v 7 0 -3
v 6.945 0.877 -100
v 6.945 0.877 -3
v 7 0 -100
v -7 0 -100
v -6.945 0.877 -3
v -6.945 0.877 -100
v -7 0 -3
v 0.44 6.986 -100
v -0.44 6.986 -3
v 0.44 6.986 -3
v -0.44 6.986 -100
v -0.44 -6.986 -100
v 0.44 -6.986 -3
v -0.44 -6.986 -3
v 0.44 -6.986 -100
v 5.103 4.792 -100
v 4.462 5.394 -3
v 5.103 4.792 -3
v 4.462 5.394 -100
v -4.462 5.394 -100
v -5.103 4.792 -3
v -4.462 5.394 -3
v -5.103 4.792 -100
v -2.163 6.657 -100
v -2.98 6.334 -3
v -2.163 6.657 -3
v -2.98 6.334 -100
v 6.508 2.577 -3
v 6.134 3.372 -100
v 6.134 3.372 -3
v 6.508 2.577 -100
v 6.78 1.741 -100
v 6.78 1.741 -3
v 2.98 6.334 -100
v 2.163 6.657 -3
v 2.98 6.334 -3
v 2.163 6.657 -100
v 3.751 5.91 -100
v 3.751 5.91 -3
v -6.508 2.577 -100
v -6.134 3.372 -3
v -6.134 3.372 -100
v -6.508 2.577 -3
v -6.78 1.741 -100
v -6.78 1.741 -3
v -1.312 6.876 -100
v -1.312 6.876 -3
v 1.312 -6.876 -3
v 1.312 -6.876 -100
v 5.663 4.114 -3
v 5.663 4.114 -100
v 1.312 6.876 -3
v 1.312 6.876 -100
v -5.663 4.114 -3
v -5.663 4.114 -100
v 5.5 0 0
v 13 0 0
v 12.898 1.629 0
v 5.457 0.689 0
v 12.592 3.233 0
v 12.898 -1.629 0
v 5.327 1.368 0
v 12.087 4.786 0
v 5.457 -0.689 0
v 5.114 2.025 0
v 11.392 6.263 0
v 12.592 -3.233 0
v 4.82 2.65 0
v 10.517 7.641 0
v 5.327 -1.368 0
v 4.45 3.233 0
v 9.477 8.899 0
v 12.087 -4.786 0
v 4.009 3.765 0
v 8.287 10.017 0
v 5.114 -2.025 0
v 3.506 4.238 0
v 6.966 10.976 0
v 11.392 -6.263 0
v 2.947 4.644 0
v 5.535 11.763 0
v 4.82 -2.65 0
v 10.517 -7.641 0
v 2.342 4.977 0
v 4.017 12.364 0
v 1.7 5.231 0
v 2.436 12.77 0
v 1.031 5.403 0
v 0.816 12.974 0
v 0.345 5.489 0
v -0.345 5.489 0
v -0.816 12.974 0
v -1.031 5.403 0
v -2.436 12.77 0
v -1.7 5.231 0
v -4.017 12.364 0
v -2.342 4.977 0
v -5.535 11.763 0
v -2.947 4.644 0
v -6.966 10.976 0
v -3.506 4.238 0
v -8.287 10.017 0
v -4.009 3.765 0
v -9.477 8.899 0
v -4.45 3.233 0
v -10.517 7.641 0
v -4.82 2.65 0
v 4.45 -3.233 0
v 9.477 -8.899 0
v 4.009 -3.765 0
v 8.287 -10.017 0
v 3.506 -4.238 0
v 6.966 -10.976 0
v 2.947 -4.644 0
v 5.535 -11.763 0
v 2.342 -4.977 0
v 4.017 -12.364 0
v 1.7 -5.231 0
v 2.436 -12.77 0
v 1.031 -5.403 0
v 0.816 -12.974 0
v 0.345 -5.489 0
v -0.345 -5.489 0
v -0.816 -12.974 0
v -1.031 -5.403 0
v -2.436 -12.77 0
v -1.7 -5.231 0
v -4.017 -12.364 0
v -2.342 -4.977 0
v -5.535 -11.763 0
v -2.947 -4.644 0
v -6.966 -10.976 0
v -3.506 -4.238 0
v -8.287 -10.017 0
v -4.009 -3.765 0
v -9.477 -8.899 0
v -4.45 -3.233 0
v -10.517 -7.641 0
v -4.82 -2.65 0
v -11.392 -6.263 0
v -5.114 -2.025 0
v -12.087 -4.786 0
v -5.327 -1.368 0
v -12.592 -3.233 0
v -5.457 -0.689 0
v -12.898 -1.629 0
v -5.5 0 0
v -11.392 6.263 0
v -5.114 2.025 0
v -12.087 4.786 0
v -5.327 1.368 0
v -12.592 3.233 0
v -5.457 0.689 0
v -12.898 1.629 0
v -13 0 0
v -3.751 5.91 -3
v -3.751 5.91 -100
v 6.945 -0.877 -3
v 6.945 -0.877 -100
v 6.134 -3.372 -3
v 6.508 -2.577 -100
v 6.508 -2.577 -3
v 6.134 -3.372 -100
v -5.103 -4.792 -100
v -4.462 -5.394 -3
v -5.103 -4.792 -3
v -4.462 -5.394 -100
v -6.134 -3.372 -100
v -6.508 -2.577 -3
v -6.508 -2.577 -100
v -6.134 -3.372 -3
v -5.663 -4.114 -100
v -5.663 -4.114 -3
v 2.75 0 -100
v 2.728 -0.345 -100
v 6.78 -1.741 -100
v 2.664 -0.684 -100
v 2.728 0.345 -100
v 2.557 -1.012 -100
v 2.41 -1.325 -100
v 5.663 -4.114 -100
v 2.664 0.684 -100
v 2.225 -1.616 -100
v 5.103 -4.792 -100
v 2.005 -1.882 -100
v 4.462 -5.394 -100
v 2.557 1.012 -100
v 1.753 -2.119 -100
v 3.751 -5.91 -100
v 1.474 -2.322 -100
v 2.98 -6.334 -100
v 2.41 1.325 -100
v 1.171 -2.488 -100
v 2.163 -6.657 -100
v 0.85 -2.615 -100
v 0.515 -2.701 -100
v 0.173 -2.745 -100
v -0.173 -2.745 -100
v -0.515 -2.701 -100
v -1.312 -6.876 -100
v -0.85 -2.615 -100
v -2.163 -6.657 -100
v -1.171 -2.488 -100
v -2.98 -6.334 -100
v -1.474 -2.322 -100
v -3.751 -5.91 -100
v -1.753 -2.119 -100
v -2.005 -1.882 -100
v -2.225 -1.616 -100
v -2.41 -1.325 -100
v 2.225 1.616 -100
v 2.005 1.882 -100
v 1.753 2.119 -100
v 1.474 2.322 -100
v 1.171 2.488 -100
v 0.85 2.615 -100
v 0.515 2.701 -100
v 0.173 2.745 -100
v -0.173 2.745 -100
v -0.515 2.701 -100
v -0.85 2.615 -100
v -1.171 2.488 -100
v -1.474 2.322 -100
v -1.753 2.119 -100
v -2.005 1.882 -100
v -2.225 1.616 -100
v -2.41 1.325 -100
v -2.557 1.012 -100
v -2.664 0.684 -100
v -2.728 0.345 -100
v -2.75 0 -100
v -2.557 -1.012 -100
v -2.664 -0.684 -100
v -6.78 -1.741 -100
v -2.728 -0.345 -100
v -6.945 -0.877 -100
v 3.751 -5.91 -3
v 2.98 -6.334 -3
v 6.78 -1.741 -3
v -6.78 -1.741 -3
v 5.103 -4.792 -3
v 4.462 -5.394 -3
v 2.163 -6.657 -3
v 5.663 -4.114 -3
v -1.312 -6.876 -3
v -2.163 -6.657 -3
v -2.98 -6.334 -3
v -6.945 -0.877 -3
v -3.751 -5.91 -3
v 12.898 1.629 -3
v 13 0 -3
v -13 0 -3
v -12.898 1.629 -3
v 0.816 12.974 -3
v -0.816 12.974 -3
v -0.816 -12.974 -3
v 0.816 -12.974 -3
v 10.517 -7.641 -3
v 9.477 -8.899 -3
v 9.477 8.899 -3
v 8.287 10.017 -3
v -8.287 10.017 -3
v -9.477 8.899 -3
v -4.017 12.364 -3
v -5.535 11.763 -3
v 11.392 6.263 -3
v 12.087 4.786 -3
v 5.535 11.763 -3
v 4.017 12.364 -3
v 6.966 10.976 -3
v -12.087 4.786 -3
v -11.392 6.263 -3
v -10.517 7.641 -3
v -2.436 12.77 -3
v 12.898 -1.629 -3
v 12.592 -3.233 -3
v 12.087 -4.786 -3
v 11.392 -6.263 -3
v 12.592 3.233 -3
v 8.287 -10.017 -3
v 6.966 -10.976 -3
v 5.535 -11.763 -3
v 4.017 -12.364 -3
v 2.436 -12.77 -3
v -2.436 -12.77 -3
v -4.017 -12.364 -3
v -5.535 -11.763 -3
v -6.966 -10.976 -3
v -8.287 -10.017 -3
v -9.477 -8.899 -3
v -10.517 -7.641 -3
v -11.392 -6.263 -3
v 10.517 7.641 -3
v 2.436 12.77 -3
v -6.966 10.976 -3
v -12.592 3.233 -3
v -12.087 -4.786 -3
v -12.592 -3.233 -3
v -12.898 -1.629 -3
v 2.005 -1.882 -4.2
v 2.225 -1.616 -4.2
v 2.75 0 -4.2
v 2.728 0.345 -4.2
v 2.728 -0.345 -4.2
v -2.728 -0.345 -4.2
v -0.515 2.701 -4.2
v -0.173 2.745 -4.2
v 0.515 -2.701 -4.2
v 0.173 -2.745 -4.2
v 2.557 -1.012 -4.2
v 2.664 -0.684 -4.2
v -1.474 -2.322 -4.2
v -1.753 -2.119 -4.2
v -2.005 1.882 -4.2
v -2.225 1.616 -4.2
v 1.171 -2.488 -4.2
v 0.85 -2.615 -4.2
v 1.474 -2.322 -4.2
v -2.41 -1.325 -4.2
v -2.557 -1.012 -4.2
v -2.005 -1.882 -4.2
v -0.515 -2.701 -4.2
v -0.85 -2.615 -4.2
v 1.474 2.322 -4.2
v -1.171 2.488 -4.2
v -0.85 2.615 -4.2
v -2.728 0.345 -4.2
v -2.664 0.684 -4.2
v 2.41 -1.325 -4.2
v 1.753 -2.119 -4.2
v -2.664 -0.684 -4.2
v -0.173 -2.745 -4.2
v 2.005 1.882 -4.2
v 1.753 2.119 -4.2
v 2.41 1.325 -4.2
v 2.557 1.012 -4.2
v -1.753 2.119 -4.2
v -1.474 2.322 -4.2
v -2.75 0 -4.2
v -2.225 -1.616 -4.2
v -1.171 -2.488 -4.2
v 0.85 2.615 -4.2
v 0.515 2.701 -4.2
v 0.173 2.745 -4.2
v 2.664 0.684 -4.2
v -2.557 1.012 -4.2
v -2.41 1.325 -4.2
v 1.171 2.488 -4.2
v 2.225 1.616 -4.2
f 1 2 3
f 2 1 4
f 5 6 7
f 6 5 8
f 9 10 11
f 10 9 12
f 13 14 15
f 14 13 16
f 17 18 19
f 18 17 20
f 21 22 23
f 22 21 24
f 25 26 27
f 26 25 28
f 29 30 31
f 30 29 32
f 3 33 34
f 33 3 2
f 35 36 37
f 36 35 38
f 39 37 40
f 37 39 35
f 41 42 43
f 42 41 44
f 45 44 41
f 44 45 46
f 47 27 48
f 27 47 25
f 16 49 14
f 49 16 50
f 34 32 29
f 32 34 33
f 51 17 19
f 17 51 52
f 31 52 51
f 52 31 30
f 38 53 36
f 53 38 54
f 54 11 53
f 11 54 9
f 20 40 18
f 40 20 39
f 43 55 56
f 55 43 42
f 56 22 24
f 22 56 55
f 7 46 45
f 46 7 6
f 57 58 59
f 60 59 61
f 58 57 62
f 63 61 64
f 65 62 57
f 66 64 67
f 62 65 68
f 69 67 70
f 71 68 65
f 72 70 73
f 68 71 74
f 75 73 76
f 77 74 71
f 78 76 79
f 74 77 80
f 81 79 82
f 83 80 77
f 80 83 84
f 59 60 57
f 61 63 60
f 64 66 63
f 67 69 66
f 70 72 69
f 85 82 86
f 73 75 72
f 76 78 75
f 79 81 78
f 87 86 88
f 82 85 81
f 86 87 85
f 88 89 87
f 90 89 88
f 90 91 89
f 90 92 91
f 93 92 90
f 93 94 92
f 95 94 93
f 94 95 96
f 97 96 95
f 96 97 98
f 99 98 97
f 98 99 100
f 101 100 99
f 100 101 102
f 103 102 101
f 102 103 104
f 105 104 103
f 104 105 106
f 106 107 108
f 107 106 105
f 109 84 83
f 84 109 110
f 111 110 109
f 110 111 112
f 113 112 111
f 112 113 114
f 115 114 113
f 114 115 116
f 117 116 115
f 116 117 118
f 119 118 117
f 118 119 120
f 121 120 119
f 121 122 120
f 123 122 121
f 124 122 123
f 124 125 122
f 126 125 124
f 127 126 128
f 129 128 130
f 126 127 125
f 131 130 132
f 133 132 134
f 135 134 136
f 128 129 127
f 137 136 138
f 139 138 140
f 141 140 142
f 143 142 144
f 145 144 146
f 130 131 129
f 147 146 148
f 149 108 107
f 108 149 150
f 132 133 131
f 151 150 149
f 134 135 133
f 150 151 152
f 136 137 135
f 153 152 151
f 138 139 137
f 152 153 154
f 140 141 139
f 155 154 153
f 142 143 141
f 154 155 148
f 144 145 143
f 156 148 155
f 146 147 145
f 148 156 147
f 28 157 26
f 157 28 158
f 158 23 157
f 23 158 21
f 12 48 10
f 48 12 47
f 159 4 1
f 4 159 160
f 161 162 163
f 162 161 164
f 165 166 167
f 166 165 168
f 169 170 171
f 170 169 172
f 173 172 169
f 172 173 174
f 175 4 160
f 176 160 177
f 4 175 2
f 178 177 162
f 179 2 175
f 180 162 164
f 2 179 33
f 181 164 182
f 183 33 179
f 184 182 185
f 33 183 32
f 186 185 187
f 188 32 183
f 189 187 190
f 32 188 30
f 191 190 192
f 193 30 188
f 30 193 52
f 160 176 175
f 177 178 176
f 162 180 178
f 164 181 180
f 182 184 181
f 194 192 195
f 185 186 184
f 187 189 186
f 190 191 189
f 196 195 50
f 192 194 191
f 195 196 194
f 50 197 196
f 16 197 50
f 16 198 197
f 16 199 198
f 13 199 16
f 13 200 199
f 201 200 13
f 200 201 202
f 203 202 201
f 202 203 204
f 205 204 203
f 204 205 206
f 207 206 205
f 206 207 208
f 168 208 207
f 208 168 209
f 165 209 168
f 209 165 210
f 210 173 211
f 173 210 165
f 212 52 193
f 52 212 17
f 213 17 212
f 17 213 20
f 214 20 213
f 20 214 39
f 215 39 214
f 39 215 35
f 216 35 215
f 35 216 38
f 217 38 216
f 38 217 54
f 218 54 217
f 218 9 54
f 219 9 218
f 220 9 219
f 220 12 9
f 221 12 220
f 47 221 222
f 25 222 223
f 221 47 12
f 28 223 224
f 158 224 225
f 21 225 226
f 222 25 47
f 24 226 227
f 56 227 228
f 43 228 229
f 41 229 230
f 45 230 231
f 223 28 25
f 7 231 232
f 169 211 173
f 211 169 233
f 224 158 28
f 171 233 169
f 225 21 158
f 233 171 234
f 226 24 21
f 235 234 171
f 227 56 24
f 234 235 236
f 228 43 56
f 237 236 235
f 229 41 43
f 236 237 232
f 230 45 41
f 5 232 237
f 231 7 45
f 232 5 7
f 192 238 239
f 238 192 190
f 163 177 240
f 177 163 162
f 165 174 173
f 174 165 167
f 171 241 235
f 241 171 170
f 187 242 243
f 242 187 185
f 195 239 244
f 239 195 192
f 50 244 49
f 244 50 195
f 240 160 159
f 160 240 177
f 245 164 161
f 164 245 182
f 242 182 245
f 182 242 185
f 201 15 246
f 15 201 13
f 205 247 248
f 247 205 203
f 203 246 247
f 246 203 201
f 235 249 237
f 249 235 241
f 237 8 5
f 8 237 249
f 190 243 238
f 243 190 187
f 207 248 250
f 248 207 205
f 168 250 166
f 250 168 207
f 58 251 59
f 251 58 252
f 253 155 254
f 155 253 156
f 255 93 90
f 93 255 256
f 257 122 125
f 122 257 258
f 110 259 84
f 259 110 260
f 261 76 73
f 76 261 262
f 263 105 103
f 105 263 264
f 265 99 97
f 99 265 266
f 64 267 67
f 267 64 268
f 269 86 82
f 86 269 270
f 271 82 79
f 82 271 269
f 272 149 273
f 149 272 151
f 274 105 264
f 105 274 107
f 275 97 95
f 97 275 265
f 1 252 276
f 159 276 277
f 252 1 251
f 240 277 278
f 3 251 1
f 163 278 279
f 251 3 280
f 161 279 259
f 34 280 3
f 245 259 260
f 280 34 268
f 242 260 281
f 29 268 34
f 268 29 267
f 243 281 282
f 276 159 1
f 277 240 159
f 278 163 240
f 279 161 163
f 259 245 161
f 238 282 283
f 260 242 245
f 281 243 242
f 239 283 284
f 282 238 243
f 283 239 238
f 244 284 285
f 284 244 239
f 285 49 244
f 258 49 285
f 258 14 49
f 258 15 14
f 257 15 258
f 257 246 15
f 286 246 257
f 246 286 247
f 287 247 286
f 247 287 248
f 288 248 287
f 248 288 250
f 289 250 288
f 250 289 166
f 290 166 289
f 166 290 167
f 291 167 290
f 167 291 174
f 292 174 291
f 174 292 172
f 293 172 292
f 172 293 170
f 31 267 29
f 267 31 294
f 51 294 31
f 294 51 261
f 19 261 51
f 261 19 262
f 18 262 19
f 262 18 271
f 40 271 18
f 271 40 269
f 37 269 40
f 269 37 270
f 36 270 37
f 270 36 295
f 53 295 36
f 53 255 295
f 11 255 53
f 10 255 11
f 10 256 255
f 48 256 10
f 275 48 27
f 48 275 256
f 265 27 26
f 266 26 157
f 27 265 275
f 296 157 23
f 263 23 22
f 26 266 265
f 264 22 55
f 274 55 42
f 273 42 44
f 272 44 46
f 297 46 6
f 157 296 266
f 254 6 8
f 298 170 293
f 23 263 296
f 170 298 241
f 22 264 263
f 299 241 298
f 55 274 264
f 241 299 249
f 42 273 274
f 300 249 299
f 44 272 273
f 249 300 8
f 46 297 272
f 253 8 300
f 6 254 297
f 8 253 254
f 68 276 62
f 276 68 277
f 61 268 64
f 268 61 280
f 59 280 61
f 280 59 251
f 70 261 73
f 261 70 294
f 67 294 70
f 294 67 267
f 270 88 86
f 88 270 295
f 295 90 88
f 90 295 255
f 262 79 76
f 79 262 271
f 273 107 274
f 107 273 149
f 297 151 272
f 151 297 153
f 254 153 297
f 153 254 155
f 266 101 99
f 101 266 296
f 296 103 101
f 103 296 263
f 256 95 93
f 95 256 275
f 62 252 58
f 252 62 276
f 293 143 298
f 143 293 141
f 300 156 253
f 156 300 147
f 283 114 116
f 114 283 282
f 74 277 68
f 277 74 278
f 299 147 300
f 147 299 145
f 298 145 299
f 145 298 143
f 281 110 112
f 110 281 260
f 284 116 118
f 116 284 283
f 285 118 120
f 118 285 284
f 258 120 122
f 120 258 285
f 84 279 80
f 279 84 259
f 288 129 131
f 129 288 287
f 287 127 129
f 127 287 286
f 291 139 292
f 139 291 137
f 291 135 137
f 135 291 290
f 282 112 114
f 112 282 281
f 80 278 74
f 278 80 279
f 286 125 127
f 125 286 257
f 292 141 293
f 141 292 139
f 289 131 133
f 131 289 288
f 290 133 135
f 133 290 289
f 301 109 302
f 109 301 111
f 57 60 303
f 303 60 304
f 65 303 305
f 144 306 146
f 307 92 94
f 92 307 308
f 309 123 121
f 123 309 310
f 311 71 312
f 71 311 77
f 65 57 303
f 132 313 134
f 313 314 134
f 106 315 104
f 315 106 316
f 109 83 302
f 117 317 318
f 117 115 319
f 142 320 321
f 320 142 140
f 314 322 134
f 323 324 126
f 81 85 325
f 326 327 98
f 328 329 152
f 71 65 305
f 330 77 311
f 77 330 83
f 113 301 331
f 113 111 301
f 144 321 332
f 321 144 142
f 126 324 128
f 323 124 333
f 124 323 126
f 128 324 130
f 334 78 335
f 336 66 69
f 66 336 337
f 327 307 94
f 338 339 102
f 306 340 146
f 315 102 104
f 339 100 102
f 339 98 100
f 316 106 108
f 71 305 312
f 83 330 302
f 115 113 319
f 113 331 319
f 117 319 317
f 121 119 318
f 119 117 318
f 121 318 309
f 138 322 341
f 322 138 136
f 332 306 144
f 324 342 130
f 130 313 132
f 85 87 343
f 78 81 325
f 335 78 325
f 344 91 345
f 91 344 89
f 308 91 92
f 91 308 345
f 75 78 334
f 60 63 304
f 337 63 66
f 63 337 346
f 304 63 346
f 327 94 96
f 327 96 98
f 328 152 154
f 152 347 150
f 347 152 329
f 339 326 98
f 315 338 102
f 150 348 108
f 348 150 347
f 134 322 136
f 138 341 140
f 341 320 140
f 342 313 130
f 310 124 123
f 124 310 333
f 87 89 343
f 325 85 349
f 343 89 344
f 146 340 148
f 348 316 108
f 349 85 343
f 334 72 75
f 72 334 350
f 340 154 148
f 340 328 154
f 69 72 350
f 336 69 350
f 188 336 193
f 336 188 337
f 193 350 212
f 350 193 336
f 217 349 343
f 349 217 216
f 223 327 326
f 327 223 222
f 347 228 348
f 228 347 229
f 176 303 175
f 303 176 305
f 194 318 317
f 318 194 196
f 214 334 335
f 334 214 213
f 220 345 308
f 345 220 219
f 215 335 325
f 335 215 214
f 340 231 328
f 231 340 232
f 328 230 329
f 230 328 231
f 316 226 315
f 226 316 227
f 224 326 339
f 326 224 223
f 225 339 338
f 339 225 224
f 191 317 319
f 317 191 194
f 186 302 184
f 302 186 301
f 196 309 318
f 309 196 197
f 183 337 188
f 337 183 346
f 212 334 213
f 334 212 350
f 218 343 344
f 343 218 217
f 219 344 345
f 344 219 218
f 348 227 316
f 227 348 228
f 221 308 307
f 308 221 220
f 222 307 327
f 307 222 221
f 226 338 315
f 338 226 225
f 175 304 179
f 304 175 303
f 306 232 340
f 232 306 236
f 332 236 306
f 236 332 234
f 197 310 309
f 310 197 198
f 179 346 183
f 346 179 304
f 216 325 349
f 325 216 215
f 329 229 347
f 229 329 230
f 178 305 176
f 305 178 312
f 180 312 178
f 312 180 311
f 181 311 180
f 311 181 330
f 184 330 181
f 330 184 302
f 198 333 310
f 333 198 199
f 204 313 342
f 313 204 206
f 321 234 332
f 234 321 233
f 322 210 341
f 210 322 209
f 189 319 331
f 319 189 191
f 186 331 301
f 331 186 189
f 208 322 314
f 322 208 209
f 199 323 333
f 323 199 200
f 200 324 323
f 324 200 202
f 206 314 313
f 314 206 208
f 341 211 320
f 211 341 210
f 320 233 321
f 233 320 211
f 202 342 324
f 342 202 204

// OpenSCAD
$fn = 50;


difference() {
	union() {
		translate(v = [0, 0, -100.0000000000]) {
			cylinder(h = 100, r = 7.0000000000);
		}
		translate(v = [0, 0, -3.0000000000]) {
			cylinder(h = 3, r = 13.0000000000);
		}
	}
	union() {
		translate(v = [0, 0, 0]) {
			rotate(a = [0, 0, 0]) {
				difference() {
					union() {
						#translate(v = [0, 0, -100.0000000000]) {
							cylinder(h = 100, r = 2.2500000000);
						}
						#translate(v = [0, 0, -4.2000000000]) {
							cylinder(h = 4.2000000000, r1 = 2.7500000000, r2 = 5.5000000000);
						}
						#translate(v = [0, 0, -100.0000000000]) {
							cylinder(h = 100, r = 2.7500000000);
						}
						#translate(v = [0, 0, -100.0000000000]) {
							cylinder(h = 100, r = 2.2500000000);
						}
					}
					union();
				}
			}
		}
	}
}
